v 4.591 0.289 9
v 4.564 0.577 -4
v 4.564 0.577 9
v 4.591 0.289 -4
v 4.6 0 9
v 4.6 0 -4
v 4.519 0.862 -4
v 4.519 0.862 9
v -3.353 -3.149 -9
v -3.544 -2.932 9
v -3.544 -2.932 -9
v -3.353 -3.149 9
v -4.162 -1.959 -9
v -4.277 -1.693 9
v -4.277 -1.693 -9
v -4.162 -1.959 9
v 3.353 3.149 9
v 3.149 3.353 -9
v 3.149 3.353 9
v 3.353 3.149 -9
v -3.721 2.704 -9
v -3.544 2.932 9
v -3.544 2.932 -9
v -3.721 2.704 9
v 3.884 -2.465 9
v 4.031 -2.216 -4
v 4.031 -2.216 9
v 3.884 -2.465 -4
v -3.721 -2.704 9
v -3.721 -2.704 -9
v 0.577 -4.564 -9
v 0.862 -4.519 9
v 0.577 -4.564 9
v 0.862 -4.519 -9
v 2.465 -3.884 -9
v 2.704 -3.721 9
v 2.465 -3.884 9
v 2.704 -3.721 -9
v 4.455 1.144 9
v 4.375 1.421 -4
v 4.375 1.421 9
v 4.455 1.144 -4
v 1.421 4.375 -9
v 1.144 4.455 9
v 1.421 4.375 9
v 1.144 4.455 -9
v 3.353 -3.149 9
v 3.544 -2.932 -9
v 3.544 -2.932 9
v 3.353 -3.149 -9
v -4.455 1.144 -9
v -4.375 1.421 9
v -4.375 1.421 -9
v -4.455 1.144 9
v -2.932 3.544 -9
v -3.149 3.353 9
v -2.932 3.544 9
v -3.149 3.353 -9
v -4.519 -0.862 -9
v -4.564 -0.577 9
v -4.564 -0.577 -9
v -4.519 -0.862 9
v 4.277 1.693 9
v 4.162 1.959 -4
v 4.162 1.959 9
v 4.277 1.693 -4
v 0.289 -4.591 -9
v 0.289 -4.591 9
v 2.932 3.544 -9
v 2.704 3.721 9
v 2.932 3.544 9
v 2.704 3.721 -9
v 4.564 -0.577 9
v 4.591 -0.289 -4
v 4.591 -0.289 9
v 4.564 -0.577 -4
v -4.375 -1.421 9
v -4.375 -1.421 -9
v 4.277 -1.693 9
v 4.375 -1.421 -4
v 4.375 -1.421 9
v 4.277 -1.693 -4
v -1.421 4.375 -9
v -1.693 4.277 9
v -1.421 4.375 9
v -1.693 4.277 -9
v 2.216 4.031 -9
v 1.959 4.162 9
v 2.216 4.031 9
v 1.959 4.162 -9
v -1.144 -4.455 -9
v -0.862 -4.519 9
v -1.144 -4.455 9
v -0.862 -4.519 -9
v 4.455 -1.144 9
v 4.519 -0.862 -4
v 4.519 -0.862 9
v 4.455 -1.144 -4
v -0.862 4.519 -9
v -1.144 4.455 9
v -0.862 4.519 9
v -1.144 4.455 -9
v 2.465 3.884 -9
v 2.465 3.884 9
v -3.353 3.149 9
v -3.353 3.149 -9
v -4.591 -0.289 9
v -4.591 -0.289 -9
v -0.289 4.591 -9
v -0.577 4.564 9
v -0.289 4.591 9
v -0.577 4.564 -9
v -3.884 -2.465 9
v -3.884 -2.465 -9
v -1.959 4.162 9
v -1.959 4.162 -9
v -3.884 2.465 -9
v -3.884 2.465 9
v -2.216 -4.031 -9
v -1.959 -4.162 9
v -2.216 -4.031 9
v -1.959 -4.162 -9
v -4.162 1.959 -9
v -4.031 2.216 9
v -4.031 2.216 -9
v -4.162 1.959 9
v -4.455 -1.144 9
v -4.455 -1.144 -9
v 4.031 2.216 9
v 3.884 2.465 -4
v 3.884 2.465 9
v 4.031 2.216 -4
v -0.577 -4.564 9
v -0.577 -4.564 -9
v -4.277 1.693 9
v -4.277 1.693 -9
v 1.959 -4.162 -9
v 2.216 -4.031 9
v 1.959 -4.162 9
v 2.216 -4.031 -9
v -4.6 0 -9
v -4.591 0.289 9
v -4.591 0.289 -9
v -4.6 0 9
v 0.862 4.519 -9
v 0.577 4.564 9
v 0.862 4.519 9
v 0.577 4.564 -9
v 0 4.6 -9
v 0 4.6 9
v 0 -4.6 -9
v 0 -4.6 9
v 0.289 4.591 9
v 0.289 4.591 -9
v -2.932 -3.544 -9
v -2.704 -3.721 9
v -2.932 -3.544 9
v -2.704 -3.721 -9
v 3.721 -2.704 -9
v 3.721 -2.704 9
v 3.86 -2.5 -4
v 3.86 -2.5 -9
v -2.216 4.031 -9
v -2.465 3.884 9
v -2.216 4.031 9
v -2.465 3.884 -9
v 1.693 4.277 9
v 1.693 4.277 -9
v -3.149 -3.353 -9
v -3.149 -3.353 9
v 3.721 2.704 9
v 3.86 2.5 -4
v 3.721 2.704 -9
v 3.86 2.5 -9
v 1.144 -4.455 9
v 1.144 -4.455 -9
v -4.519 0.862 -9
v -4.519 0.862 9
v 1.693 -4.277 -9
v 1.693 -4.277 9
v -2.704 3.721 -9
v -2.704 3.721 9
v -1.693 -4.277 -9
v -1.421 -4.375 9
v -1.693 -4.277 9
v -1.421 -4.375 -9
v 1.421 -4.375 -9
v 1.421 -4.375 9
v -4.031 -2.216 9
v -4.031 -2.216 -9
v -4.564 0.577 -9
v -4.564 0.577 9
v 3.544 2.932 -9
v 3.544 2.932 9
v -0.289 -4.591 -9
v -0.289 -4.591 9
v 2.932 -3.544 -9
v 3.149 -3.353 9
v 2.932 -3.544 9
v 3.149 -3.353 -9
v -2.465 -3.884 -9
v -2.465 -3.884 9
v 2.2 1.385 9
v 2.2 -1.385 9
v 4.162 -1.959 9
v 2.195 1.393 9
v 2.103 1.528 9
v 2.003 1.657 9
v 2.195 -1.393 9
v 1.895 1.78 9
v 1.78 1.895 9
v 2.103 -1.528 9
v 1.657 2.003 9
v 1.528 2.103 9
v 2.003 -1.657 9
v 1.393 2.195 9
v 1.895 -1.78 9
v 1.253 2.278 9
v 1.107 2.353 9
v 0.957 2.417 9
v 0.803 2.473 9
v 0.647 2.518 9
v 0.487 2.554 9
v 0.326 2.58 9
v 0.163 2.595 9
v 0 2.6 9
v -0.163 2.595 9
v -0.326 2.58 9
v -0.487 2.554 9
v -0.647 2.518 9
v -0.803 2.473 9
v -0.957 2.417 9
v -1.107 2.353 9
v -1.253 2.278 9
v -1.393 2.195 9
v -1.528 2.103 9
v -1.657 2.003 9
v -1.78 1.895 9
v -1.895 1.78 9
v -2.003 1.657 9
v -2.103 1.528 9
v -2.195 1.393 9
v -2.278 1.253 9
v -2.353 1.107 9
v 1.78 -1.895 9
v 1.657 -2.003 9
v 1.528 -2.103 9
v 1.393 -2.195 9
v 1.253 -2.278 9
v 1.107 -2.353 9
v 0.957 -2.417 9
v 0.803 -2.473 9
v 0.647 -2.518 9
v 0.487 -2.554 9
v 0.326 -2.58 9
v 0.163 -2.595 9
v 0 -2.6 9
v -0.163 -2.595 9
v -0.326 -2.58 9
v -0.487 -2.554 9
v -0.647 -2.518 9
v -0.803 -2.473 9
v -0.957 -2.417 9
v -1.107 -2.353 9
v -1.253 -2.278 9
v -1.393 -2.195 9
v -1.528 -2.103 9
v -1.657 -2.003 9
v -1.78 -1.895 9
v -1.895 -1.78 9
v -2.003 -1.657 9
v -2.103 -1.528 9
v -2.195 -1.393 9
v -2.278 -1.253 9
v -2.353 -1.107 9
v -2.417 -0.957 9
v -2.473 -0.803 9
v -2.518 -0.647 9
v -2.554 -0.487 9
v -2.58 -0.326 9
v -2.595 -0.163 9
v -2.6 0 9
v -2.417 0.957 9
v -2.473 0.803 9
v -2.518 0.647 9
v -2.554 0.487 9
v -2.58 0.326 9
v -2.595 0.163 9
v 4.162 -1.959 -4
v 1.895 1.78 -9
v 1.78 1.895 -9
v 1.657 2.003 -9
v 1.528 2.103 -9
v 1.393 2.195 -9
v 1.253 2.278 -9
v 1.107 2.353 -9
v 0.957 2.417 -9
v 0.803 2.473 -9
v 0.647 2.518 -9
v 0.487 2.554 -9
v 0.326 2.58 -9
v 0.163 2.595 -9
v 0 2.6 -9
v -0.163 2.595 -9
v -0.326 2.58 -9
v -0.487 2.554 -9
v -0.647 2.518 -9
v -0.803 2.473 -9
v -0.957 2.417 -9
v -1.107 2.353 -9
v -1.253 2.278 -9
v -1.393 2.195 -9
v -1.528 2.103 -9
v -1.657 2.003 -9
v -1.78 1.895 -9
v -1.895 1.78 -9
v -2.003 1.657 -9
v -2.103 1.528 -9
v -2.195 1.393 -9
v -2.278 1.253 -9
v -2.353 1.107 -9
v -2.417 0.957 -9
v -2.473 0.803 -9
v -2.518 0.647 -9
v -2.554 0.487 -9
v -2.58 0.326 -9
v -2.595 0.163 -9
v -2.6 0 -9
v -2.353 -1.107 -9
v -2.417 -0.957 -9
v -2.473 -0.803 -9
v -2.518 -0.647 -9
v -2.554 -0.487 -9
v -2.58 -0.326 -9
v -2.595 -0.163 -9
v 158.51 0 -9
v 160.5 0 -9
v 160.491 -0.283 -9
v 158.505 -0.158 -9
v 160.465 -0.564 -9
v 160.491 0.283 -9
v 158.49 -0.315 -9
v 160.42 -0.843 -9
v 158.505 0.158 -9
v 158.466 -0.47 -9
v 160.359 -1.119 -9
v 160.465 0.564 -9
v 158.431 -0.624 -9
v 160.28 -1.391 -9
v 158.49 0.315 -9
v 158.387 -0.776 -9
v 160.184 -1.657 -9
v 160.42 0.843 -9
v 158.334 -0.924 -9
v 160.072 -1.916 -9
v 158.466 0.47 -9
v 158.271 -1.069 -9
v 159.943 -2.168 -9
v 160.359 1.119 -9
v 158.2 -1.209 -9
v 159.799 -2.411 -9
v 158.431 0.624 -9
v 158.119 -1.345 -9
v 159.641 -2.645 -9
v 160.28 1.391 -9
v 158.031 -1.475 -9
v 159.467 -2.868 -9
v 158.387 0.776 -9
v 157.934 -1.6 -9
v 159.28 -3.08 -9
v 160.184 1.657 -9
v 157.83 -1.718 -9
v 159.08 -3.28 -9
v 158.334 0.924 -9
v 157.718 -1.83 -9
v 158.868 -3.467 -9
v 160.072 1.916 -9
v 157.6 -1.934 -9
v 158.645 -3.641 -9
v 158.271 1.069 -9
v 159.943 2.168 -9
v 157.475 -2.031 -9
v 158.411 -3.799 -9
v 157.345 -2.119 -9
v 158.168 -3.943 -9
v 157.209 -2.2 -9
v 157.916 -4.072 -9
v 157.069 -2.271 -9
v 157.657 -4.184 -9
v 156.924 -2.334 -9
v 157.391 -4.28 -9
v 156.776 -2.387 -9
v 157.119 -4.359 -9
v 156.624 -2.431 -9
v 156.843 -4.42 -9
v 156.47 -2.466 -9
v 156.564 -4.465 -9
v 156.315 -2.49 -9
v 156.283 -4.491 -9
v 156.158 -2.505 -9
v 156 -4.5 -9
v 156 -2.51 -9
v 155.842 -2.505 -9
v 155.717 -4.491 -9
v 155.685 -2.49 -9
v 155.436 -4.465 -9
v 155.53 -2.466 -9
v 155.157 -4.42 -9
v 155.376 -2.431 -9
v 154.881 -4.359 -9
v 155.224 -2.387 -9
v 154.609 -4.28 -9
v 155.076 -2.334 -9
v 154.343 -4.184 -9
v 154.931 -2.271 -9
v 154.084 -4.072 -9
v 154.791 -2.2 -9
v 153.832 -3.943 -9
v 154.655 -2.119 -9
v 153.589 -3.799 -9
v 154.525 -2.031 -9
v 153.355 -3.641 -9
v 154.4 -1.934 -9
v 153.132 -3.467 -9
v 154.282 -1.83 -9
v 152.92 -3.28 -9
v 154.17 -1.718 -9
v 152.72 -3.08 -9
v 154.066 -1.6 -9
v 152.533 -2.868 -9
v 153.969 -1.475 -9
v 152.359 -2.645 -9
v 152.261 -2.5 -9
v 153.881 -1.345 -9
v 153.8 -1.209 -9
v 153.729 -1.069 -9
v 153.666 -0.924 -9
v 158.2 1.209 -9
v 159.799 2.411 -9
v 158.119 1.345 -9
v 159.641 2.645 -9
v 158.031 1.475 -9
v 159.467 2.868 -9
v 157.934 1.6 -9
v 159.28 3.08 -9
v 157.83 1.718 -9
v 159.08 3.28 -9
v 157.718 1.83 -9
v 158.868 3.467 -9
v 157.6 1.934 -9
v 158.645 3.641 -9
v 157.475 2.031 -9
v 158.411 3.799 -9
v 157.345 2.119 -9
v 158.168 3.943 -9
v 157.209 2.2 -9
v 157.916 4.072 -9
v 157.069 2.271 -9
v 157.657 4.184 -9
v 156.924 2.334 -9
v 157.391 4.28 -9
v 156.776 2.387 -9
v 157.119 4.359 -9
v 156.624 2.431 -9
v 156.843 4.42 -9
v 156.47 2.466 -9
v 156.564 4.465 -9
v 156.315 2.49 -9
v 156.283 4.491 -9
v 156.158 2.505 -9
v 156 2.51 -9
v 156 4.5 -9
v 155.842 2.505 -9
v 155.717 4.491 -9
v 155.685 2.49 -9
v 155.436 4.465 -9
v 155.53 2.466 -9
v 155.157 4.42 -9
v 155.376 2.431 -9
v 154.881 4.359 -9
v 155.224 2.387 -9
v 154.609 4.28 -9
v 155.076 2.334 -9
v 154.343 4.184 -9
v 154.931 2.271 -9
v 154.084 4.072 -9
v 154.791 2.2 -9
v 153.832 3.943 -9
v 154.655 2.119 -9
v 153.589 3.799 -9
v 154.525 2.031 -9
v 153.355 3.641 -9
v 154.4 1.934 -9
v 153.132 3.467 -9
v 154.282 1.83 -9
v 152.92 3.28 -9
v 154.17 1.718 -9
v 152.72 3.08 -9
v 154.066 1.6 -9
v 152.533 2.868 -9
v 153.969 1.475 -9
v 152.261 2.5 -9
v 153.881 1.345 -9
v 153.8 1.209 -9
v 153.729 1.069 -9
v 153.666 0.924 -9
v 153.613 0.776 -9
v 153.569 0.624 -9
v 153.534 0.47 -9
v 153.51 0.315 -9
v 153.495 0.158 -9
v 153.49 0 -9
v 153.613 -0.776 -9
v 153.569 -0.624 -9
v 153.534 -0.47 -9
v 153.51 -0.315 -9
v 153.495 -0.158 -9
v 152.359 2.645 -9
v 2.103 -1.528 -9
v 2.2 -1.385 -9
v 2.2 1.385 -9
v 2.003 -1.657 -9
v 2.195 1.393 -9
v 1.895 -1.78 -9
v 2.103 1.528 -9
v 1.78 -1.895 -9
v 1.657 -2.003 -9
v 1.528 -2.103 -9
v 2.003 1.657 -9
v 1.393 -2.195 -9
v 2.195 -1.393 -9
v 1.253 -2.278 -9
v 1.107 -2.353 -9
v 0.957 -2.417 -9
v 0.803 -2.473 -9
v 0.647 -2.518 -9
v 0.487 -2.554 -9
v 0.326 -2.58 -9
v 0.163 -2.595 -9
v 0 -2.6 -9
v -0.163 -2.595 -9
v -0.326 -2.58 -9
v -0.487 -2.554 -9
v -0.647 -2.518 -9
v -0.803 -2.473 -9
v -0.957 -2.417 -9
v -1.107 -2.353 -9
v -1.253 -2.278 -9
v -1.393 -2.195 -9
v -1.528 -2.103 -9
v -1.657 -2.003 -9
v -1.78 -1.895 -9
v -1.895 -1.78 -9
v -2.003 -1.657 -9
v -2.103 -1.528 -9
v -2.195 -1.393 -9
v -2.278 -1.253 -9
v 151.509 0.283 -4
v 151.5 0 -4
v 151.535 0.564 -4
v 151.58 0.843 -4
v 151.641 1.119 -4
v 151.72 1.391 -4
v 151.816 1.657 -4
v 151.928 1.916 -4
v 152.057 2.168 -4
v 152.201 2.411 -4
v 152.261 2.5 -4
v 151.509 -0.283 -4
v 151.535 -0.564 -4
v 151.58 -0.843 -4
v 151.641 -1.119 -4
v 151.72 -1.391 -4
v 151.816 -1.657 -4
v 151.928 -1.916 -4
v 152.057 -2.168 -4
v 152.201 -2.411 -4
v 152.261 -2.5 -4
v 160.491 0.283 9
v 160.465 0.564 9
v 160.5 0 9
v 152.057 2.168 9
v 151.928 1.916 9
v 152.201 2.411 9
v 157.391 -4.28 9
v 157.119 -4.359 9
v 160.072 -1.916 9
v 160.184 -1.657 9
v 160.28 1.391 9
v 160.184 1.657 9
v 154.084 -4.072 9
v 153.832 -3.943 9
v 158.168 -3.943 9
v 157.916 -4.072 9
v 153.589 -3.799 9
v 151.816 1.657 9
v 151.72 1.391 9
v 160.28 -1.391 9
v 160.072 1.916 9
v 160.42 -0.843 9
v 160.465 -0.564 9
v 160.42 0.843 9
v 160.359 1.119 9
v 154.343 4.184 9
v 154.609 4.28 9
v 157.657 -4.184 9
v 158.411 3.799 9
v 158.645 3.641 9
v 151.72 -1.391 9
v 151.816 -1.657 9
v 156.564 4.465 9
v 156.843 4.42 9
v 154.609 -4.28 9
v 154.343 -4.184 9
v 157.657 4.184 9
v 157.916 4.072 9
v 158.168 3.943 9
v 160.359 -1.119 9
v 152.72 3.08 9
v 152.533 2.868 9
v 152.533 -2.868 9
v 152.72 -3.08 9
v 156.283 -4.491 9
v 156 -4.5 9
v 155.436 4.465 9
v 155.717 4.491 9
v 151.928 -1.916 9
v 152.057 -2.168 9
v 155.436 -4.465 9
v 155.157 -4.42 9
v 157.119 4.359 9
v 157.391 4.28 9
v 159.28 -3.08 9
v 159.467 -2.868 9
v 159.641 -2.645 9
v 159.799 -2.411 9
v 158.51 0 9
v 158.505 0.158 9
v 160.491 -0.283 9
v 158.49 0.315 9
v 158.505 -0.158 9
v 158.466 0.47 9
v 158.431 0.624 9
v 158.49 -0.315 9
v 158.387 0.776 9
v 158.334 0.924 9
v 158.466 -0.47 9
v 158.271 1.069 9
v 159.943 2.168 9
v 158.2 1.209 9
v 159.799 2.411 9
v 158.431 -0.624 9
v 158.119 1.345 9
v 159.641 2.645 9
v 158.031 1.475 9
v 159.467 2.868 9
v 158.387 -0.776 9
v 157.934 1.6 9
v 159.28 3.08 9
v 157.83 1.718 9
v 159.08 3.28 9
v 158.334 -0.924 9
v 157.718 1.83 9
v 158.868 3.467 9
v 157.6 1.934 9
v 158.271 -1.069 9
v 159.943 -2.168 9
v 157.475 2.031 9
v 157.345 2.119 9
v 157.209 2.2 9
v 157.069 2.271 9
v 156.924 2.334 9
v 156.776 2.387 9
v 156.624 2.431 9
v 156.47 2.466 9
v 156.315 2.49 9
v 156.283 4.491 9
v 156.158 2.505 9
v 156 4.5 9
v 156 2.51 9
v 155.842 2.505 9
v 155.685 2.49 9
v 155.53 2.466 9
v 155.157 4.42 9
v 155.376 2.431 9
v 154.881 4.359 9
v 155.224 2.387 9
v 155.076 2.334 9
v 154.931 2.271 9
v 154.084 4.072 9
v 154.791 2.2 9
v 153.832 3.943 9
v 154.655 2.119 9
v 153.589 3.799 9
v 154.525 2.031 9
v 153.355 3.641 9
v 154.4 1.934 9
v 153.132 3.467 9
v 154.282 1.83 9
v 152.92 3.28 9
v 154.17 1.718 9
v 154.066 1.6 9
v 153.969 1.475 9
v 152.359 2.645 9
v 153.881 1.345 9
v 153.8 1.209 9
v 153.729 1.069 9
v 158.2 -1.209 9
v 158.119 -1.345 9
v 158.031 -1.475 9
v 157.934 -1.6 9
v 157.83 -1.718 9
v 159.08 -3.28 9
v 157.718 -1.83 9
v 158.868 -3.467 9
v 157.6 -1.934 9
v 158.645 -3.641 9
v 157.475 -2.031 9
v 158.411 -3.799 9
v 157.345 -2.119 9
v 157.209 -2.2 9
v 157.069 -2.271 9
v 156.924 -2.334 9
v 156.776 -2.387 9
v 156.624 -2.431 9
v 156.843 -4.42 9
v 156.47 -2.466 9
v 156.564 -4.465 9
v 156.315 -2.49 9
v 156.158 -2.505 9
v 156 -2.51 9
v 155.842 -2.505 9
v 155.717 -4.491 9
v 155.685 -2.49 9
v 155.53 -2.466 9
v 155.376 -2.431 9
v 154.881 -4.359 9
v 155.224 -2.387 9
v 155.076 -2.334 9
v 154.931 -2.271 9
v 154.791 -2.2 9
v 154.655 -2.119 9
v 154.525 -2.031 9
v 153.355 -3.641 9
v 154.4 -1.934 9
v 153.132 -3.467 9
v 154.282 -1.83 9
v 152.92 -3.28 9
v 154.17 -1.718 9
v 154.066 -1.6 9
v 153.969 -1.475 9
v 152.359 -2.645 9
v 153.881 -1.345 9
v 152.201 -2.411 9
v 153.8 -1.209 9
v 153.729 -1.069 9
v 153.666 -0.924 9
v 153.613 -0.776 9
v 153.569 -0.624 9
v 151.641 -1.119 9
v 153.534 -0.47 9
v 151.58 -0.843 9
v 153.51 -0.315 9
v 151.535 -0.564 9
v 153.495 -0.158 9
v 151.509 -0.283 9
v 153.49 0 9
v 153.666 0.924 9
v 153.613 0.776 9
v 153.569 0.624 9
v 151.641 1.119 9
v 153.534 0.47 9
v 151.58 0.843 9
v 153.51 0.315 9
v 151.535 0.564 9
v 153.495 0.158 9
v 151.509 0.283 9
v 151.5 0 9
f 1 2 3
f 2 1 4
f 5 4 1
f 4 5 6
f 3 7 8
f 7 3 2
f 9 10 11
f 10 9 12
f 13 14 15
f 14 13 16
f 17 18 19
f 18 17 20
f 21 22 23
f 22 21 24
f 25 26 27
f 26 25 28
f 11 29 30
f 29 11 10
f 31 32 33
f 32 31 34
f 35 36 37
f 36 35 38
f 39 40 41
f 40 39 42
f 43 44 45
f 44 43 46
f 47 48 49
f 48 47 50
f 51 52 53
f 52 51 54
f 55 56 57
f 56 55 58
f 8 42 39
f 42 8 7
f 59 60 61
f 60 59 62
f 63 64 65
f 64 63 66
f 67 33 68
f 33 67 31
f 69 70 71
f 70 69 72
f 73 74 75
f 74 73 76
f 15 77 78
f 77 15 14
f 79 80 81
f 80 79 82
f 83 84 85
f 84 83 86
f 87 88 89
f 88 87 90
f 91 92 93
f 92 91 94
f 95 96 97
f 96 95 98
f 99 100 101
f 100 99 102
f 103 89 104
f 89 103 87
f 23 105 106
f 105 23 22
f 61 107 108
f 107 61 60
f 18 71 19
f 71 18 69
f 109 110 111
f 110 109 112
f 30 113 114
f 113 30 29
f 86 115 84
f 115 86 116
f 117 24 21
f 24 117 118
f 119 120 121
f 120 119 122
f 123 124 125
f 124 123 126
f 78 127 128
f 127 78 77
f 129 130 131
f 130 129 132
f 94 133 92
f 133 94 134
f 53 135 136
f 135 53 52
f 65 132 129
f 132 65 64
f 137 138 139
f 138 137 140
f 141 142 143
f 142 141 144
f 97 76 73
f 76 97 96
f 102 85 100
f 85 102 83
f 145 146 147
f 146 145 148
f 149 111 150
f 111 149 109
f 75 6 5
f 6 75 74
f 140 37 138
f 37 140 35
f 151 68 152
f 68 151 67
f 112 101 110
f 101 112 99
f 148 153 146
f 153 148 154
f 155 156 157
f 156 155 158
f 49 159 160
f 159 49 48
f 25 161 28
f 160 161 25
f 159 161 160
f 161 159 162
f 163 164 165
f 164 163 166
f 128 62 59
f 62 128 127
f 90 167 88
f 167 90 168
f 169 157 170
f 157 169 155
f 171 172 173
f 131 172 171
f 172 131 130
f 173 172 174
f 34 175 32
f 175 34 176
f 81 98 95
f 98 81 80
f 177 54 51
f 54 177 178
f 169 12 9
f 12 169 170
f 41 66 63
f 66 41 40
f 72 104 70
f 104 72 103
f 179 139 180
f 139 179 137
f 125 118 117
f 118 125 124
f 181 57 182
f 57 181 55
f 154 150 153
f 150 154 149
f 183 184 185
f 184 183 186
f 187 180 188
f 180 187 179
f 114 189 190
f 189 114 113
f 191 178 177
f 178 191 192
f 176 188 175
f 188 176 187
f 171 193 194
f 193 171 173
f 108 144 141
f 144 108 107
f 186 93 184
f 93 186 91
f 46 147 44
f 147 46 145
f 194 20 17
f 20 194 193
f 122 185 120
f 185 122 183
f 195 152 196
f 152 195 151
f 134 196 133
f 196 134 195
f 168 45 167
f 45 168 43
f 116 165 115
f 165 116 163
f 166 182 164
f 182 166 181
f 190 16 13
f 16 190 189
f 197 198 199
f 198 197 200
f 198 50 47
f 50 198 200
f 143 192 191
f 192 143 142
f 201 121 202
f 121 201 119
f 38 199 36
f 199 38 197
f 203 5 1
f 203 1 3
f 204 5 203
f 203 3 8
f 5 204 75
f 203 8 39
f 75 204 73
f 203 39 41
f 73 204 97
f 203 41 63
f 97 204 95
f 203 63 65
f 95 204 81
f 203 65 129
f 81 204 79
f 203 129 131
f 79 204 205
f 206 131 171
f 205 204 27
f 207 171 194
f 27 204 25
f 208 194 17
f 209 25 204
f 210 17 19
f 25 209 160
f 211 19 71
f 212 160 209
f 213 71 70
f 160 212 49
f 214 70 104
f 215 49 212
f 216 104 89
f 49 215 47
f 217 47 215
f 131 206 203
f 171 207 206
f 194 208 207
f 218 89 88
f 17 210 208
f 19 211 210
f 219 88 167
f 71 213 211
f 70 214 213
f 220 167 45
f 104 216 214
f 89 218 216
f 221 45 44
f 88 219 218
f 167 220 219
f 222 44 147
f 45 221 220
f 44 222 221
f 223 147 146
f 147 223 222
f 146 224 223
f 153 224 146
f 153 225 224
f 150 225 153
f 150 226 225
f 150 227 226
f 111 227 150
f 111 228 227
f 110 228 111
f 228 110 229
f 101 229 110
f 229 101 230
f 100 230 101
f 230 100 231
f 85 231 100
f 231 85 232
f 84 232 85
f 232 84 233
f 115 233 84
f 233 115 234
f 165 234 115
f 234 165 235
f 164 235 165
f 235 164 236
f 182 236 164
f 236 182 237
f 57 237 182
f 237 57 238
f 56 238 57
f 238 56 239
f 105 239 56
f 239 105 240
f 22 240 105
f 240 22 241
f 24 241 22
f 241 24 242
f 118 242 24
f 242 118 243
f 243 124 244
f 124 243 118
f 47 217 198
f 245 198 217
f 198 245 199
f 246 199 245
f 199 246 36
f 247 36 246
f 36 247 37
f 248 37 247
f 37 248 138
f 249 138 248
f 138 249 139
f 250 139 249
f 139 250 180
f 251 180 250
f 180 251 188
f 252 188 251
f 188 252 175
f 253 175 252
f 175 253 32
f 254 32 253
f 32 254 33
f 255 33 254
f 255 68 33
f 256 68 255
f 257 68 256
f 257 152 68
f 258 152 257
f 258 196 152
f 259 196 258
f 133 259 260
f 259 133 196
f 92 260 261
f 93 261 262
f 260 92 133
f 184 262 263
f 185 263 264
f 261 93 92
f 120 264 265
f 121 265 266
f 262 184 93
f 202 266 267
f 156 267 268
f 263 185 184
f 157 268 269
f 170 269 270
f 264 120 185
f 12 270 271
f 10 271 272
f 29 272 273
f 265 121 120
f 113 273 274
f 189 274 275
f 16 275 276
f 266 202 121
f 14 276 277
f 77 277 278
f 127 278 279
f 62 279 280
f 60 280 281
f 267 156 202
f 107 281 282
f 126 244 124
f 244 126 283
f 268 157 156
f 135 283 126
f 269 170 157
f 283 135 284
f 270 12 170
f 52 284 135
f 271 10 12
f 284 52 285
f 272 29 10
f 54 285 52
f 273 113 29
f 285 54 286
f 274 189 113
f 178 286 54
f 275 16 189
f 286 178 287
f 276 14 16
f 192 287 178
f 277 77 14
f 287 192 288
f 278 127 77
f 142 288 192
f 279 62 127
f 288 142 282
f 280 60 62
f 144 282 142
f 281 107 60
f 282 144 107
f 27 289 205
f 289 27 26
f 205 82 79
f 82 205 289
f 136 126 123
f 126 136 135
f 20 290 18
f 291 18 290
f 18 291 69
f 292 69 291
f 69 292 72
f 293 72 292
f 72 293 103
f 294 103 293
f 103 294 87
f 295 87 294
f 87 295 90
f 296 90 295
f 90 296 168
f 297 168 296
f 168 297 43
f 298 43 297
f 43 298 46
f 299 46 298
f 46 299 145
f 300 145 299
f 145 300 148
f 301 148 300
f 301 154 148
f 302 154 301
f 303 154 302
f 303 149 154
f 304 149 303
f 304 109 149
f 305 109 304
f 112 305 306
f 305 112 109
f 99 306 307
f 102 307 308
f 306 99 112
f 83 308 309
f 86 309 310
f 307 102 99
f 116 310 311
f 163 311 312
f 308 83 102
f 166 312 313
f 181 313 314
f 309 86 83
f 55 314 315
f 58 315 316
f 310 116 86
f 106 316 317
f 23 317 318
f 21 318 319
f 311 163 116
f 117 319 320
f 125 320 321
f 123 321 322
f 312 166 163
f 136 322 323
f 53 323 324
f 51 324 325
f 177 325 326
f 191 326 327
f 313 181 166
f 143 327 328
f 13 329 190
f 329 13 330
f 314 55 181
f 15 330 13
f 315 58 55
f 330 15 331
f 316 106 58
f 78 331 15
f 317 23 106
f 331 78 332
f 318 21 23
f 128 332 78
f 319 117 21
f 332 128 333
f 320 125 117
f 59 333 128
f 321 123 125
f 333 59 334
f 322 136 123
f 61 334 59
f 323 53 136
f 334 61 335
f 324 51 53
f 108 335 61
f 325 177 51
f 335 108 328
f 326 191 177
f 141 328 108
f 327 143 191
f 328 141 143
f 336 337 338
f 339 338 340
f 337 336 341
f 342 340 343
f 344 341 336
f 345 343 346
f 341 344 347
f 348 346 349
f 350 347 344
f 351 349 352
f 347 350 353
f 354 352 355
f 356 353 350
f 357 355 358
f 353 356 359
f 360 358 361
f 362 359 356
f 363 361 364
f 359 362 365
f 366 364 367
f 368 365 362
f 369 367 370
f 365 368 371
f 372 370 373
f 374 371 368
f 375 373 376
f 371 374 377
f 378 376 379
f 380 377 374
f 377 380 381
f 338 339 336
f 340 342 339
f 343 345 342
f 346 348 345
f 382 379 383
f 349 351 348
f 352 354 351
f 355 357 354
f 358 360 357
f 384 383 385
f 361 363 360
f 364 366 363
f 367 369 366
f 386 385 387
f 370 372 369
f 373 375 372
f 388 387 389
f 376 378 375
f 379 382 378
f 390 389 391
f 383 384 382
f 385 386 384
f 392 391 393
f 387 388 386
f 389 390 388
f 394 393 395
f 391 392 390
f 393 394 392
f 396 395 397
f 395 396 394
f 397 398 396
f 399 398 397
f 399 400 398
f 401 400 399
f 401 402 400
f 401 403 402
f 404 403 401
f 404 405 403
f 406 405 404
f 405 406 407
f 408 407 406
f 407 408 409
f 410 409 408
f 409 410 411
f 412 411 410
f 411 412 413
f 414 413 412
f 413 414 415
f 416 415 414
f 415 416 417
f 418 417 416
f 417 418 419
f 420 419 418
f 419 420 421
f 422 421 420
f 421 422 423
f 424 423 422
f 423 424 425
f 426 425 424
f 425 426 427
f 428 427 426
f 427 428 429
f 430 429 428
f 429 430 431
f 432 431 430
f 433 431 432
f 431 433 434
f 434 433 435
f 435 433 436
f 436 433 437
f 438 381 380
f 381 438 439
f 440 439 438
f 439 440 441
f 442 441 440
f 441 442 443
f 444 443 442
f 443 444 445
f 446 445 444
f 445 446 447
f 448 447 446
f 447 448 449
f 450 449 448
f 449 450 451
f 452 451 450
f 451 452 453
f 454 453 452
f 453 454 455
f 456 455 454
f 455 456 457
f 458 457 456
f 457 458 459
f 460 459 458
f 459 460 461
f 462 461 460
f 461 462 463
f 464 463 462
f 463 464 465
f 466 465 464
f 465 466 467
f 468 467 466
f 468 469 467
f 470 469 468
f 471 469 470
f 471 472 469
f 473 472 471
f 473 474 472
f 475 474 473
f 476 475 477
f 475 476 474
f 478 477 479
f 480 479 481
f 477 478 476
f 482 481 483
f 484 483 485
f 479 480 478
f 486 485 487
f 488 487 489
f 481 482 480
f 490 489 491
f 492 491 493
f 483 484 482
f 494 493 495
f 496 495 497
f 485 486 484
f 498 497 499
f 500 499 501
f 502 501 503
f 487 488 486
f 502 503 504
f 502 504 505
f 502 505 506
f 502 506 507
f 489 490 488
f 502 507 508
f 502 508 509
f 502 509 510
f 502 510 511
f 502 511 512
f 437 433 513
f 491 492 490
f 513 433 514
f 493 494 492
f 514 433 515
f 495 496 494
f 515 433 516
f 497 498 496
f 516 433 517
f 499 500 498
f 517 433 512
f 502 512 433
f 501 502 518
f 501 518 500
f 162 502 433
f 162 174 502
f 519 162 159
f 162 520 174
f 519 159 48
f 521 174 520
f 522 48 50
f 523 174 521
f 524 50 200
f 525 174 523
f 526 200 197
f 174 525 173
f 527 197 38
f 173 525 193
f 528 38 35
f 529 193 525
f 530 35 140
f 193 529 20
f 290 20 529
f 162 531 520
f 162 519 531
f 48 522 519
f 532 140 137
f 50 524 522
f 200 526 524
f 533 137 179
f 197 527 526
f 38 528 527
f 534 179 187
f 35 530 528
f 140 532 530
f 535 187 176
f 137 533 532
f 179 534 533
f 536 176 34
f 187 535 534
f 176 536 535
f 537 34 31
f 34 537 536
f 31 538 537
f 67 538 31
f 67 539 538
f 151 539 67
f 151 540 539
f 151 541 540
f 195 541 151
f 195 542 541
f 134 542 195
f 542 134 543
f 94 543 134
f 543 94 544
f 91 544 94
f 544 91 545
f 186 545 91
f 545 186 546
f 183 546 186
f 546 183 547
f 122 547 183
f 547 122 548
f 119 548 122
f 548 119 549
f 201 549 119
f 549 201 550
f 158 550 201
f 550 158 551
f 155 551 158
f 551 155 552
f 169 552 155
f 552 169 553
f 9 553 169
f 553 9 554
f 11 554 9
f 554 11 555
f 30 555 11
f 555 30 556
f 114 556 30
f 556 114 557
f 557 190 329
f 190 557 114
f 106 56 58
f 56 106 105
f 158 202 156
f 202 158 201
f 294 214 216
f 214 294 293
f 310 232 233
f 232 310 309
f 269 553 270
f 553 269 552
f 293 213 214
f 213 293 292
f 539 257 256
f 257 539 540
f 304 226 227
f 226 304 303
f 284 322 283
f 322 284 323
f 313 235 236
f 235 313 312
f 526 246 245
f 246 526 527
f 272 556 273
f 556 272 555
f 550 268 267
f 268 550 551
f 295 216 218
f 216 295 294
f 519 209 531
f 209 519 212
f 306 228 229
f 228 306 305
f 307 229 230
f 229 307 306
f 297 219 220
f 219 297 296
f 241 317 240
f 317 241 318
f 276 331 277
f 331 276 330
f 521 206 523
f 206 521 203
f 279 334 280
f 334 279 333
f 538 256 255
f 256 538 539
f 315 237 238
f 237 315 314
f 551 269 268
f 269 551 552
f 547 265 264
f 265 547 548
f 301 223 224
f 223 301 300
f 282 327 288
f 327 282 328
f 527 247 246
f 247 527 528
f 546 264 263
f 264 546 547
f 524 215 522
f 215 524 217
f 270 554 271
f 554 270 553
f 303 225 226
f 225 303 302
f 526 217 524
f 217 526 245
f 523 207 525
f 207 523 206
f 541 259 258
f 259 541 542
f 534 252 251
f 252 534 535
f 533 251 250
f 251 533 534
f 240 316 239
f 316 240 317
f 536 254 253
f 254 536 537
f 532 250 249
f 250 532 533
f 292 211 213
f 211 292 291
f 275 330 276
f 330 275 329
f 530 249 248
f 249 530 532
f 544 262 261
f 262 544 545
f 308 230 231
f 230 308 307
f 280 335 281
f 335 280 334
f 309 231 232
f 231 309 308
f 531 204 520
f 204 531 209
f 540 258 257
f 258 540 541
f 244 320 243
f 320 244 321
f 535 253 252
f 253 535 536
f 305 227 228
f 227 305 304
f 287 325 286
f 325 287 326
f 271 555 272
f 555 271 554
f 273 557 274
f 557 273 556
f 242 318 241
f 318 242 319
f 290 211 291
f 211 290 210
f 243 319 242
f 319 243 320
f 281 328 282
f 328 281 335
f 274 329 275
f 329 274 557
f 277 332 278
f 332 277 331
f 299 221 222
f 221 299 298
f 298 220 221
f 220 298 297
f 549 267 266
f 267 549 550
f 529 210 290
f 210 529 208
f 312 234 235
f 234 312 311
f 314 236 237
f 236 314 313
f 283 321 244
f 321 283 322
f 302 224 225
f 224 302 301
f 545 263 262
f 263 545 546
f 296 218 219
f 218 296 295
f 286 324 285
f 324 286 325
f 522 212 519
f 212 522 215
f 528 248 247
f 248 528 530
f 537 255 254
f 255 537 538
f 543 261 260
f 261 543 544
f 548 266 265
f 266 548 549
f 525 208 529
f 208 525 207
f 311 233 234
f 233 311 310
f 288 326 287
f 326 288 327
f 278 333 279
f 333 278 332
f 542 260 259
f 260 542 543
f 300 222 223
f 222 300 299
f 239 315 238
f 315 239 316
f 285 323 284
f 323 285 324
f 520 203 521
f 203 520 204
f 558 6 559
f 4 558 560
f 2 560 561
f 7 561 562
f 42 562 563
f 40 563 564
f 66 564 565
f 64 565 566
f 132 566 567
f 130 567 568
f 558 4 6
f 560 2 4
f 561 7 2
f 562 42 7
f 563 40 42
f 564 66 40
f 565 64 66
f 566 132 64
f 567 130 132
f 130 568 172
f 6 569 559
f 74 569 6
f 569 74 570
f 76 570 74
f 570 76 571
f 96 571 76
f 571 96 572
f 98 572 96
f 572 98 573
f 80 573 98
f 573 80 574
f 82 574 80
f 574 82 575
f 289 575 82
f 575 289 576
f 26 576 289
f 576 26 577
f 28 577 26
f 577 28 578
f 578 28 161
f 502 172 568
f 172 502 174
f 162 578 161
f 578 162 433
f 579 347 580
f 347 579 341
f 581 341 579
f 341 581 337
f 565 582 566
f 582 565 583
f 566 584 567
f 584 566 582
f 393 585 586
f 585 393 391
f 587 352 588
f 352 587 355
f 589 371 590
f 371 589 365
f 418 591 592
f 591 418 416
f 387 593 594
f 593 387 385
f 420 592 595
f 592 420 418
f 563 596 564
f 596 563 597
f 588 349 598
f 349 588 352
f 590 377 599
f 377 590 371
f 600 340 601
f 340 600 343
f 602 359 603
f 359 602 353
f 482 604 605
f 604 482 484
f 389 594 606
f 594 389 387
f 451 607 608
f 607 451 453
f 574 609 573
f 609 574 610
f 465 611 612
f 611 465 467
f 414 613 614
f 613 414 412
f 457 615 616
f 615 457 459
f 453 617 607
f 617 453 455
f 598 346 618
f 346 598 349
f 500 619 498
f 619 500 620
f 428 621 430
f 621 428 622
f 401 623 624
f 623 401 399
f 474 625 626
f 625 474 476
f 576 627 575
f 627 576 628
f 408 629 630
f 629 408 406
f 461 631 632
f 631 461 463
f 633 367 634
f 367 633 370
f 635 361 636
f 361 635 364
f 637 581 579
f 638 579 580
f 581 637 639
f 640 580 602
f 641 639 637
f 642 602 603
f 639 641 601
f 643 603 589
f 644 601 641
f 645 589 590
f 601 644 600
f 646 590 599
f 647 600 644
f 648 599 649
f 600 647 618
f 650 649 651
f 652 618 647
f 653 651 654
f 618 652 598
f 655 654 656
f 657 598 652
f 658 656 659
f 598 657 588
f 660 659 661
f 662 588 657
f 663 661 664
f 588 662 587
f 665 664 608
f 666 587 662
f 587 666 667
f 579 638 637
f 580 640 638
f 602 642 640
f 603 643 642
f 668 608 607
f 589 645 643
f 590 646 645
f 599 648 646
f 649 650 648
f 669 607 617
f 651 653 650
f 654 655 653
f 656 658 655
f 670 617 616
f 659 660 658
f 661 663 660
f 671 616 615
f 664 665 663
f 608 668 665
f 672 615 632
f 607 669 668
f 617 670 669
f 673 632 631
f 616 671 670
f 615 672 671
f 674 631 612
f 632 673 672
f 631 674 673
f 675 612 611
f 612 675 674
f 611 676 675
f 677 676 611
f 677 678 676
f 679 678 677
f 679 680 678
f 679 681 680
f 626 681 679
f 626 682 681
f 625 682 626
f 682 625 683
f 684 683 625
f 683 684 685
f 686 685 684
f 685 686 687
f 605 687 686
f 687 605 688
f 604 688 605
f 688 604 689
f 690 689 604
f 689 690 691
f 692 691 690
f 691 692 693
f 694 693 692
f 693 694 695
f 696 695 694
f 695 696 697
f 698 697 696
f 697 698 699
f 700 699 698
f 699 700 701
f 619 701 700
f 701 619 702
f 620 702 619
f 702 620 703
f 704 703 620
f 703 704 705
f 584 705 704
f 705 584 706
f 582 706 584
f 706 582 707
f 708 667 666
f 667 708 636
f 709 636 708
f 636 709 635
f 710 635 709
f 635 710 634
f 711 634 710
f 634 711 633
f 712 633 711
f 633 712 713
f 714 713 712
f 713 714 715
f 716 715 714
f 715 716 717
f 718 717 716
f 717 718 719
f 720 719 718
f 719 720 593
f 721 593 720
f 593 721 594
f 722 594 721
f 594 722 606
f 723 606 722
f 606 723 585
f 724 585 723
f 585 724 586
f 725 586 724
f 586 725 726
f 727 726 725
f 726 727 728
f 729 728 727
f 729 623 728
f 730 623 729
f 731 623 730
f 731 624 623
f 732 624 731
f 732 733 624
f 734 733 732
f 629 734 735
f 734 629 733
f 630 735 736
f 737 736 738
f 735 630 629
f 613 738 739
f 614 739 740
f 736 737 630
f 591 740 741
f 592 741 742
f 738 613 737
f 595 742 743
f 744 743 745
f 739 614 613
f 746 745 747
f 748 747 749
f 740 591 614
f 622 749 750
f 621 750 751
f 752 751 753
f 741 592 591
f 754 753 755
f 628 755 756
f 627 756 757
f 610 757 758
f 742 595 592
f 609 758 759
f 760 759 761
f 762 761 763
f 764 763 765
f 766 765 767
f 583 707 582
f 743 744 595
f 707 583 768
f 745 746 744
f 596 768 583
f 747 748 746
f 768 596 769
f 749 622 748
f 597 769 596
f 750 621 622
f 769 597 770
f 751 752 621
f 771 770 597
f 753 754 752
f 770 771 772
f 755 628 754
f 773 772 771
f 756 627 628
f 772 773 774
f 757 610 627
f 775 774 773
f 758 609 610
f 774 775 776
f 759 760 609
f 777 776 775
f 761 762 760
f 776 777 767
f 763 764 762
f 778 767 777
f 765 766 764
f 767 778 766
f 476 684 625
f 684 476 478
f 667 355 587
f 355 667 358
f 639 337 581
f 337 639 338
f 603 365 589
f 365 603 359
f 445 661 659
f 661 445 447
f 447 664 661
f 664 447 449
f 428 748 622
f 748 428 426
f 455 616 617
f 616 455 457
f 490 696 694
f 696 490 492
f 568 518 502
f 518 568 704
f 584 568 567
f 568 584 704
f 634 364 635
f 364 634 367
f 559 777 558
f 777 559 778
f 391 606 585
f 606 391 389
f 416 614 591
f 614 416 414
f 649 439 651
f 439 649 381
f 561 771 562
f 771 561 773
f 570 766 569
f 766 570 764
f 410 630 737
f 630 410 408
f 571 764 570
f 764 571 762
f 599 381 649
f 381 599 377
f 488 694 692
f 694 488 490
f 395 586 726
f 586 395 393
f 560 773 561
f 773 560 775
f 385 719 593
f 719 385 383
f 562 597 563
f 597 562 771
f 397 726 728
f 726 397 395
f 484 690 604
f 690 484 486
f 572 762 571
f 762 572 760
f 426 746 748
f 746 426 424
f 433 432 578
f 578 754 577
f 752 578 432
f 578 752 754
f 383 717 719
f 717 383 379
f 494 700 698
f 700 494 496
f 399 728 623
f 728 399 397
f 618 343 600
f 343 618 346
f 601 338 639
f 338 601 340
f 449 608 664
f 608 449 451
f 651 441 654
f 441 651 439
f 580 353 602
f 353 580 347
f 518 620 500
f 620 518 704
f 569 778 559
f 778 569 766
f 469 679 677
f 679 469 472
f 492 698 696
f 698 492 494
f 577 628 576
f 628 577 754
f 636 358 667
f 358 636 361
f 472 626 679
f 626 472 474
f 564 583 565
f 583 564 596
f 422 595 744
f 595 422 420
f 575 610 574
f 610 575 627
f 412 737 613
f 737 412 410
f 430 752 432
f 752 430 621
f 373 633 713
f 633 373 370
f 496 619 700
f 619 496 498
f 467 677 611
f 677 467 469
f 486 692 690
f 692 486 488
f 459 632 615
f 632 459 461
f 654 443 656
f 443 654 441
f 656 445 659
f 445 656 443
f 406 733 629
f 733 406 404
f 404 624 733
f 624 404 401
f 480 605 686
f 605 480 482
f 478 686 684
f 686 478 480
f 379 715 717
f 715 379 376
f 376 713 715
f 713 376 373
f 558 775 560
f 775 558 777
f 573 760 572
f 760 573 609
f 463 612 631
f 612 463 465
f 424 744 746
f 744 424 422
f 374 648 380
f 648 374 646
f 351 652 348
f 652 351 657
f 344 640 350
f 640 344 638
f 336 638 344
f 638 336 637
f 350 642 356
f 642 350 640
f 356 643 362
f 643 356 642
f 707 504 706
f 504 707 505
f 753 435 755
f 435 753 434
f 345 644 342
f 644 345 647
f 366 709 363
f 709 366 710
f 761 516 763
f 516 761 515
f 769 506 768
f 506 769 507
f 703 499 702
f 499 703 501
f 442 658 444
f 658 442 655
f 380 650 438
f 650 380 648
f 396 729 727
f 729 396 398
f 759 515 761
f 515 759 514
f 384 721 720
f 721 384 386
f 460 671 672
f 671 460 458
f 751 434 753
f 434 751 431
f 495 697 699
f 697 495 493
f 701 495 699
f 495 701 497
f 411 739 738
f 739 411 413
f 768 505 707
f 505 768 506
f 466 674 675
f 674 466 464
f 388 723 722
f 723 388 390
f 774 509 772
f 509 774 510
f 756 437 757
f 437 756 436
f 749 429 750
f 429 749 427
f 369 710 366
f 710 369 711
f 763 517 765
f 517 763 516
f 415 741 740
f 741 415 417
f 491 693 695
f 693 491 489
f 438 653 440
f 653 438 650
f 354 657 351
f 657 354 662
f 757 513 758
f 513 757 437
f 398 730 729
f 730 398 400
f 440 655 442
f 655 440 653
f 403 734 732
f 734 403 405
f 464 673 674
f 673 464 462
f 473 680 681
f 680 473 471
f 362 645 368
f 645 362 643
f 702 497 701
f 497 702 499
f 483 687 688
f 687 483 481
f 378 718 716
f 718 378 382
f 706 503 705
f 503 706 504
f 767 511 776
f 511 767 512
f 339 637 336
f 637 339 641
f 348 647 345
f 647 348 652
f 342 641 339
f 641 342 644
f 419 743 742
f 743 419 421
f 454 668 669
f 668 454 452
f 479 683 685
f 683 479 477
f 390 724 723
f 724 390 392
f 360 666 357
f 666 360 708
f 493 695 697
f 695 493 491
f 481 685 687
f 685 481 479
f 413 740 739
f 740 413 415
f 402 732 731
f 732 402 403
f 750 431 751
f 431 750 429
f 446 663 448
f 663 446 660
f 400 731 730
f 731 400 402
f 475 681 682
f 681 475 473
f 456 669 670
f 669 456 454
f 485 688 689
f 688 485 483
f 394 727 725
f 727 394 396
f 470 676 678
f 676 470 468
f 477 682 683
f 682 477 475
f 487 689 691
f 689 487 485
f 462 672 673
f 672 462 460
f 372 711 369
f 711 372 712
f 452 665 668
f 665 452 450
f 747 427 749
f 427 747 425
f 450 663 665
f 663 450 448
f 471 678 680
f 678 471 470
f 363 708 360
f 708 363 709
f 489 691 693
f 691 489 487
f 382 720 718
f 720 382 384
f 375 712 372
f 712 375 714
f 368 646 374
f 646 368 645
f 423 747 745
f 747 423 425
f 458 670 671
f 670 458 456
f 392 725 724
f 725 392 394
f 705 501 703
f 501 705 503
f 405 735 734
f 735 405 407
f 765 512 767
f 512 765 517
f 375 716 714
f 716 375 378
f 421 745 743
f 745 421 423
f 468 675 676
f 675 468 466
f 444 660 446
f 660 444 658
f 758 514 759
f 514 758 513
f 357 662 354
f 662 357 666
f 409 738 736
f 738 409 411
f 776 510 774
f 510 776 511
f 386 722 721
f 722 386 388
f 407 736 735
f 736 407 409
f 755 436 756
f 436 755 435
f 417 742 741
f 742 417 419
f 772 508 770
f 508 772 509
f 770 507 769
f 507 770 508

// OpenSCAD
module obj1() {
difference() {
cylinder(h=18,r=5.2/2+2, $fn=100,center=true );//vnejsi
cylinder(h=20,r=5.2/2, $fn=100,center=true); //vnitrni
}

translate([5.2/2,0,0]) cube([5.2-4.4,5.2,18],center=true);

translate([150/2+3,0,-13/2]) cube([150,5,5], center=true);
}

module obj2(){

difference(){
    cylinder(h=18,r=5/2+2, $fn=100,center=true );//vnejsi
    cylinder(h=20,r=5/2+0.01, $fn=100,center=true );//vnitrni
}
}
union(){
obj1();
translate([150+6,0,0]) obj2();
}
